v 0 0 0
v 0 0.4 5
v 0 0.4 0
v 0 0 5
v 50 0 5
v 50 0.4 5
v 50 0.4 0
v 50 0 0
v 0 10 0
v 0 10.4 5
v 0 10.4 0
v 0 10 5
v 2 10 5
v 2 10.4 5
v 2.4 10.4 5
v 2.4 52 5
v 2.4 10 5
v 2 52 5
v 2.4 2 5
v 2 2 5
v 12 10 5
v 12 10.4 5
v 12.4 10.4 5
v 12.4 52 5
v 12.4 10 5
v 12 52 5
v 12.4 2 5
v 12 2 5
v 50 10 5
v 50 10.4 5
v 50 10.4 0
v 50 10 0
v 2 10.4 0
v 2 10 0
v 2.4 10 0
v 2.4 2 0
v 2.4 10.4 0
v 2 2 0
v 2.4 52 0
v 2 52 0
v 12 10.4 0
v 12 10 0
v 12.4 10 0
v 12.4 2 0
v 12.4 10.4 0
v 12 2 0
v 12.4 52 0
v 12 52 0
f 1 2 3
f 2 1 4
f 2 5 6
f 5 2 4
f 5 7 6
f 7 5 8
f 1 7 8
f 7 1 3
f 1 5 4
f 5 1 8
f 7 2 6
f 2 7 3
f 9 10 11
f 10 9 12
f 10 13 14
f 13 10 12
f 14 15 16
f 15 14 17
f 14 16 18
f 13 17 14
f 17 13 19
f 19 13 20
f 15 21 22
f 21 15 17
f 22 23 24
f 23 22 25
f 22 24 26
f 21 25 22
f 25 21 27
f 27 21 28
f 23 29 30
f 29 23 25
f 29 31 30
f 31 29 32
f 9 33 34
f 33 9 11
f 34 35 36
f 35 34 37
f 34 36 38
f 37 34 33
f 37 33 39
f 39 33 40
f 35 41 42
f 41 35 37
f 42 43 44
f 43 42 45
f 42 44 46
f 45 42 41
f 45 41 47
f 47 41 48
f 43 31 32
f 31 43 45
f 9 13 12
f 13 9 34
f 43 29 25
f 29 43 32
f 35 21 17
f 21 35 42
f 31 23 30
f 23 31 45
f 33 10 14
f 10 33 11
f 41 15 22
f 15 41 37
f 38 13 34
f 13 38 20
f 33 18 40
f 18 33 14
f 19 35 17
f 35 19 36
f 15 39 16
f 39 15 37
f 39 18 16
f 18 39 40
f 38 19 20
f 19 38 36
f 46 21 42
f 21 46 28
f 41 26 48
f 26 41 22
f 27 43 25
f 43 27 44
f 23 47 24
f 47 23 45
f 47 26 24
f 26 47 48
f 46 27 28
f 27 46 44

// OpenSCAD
nozzle=0.4;

height=5;

cube([50,0.4,height]);

translate([0,10,0]) cube([50,0.4,height]);

translate([2,2,0]) cube([0.4,50,height]);

translate([12,2,0]) cube([0.4,50,height]);
